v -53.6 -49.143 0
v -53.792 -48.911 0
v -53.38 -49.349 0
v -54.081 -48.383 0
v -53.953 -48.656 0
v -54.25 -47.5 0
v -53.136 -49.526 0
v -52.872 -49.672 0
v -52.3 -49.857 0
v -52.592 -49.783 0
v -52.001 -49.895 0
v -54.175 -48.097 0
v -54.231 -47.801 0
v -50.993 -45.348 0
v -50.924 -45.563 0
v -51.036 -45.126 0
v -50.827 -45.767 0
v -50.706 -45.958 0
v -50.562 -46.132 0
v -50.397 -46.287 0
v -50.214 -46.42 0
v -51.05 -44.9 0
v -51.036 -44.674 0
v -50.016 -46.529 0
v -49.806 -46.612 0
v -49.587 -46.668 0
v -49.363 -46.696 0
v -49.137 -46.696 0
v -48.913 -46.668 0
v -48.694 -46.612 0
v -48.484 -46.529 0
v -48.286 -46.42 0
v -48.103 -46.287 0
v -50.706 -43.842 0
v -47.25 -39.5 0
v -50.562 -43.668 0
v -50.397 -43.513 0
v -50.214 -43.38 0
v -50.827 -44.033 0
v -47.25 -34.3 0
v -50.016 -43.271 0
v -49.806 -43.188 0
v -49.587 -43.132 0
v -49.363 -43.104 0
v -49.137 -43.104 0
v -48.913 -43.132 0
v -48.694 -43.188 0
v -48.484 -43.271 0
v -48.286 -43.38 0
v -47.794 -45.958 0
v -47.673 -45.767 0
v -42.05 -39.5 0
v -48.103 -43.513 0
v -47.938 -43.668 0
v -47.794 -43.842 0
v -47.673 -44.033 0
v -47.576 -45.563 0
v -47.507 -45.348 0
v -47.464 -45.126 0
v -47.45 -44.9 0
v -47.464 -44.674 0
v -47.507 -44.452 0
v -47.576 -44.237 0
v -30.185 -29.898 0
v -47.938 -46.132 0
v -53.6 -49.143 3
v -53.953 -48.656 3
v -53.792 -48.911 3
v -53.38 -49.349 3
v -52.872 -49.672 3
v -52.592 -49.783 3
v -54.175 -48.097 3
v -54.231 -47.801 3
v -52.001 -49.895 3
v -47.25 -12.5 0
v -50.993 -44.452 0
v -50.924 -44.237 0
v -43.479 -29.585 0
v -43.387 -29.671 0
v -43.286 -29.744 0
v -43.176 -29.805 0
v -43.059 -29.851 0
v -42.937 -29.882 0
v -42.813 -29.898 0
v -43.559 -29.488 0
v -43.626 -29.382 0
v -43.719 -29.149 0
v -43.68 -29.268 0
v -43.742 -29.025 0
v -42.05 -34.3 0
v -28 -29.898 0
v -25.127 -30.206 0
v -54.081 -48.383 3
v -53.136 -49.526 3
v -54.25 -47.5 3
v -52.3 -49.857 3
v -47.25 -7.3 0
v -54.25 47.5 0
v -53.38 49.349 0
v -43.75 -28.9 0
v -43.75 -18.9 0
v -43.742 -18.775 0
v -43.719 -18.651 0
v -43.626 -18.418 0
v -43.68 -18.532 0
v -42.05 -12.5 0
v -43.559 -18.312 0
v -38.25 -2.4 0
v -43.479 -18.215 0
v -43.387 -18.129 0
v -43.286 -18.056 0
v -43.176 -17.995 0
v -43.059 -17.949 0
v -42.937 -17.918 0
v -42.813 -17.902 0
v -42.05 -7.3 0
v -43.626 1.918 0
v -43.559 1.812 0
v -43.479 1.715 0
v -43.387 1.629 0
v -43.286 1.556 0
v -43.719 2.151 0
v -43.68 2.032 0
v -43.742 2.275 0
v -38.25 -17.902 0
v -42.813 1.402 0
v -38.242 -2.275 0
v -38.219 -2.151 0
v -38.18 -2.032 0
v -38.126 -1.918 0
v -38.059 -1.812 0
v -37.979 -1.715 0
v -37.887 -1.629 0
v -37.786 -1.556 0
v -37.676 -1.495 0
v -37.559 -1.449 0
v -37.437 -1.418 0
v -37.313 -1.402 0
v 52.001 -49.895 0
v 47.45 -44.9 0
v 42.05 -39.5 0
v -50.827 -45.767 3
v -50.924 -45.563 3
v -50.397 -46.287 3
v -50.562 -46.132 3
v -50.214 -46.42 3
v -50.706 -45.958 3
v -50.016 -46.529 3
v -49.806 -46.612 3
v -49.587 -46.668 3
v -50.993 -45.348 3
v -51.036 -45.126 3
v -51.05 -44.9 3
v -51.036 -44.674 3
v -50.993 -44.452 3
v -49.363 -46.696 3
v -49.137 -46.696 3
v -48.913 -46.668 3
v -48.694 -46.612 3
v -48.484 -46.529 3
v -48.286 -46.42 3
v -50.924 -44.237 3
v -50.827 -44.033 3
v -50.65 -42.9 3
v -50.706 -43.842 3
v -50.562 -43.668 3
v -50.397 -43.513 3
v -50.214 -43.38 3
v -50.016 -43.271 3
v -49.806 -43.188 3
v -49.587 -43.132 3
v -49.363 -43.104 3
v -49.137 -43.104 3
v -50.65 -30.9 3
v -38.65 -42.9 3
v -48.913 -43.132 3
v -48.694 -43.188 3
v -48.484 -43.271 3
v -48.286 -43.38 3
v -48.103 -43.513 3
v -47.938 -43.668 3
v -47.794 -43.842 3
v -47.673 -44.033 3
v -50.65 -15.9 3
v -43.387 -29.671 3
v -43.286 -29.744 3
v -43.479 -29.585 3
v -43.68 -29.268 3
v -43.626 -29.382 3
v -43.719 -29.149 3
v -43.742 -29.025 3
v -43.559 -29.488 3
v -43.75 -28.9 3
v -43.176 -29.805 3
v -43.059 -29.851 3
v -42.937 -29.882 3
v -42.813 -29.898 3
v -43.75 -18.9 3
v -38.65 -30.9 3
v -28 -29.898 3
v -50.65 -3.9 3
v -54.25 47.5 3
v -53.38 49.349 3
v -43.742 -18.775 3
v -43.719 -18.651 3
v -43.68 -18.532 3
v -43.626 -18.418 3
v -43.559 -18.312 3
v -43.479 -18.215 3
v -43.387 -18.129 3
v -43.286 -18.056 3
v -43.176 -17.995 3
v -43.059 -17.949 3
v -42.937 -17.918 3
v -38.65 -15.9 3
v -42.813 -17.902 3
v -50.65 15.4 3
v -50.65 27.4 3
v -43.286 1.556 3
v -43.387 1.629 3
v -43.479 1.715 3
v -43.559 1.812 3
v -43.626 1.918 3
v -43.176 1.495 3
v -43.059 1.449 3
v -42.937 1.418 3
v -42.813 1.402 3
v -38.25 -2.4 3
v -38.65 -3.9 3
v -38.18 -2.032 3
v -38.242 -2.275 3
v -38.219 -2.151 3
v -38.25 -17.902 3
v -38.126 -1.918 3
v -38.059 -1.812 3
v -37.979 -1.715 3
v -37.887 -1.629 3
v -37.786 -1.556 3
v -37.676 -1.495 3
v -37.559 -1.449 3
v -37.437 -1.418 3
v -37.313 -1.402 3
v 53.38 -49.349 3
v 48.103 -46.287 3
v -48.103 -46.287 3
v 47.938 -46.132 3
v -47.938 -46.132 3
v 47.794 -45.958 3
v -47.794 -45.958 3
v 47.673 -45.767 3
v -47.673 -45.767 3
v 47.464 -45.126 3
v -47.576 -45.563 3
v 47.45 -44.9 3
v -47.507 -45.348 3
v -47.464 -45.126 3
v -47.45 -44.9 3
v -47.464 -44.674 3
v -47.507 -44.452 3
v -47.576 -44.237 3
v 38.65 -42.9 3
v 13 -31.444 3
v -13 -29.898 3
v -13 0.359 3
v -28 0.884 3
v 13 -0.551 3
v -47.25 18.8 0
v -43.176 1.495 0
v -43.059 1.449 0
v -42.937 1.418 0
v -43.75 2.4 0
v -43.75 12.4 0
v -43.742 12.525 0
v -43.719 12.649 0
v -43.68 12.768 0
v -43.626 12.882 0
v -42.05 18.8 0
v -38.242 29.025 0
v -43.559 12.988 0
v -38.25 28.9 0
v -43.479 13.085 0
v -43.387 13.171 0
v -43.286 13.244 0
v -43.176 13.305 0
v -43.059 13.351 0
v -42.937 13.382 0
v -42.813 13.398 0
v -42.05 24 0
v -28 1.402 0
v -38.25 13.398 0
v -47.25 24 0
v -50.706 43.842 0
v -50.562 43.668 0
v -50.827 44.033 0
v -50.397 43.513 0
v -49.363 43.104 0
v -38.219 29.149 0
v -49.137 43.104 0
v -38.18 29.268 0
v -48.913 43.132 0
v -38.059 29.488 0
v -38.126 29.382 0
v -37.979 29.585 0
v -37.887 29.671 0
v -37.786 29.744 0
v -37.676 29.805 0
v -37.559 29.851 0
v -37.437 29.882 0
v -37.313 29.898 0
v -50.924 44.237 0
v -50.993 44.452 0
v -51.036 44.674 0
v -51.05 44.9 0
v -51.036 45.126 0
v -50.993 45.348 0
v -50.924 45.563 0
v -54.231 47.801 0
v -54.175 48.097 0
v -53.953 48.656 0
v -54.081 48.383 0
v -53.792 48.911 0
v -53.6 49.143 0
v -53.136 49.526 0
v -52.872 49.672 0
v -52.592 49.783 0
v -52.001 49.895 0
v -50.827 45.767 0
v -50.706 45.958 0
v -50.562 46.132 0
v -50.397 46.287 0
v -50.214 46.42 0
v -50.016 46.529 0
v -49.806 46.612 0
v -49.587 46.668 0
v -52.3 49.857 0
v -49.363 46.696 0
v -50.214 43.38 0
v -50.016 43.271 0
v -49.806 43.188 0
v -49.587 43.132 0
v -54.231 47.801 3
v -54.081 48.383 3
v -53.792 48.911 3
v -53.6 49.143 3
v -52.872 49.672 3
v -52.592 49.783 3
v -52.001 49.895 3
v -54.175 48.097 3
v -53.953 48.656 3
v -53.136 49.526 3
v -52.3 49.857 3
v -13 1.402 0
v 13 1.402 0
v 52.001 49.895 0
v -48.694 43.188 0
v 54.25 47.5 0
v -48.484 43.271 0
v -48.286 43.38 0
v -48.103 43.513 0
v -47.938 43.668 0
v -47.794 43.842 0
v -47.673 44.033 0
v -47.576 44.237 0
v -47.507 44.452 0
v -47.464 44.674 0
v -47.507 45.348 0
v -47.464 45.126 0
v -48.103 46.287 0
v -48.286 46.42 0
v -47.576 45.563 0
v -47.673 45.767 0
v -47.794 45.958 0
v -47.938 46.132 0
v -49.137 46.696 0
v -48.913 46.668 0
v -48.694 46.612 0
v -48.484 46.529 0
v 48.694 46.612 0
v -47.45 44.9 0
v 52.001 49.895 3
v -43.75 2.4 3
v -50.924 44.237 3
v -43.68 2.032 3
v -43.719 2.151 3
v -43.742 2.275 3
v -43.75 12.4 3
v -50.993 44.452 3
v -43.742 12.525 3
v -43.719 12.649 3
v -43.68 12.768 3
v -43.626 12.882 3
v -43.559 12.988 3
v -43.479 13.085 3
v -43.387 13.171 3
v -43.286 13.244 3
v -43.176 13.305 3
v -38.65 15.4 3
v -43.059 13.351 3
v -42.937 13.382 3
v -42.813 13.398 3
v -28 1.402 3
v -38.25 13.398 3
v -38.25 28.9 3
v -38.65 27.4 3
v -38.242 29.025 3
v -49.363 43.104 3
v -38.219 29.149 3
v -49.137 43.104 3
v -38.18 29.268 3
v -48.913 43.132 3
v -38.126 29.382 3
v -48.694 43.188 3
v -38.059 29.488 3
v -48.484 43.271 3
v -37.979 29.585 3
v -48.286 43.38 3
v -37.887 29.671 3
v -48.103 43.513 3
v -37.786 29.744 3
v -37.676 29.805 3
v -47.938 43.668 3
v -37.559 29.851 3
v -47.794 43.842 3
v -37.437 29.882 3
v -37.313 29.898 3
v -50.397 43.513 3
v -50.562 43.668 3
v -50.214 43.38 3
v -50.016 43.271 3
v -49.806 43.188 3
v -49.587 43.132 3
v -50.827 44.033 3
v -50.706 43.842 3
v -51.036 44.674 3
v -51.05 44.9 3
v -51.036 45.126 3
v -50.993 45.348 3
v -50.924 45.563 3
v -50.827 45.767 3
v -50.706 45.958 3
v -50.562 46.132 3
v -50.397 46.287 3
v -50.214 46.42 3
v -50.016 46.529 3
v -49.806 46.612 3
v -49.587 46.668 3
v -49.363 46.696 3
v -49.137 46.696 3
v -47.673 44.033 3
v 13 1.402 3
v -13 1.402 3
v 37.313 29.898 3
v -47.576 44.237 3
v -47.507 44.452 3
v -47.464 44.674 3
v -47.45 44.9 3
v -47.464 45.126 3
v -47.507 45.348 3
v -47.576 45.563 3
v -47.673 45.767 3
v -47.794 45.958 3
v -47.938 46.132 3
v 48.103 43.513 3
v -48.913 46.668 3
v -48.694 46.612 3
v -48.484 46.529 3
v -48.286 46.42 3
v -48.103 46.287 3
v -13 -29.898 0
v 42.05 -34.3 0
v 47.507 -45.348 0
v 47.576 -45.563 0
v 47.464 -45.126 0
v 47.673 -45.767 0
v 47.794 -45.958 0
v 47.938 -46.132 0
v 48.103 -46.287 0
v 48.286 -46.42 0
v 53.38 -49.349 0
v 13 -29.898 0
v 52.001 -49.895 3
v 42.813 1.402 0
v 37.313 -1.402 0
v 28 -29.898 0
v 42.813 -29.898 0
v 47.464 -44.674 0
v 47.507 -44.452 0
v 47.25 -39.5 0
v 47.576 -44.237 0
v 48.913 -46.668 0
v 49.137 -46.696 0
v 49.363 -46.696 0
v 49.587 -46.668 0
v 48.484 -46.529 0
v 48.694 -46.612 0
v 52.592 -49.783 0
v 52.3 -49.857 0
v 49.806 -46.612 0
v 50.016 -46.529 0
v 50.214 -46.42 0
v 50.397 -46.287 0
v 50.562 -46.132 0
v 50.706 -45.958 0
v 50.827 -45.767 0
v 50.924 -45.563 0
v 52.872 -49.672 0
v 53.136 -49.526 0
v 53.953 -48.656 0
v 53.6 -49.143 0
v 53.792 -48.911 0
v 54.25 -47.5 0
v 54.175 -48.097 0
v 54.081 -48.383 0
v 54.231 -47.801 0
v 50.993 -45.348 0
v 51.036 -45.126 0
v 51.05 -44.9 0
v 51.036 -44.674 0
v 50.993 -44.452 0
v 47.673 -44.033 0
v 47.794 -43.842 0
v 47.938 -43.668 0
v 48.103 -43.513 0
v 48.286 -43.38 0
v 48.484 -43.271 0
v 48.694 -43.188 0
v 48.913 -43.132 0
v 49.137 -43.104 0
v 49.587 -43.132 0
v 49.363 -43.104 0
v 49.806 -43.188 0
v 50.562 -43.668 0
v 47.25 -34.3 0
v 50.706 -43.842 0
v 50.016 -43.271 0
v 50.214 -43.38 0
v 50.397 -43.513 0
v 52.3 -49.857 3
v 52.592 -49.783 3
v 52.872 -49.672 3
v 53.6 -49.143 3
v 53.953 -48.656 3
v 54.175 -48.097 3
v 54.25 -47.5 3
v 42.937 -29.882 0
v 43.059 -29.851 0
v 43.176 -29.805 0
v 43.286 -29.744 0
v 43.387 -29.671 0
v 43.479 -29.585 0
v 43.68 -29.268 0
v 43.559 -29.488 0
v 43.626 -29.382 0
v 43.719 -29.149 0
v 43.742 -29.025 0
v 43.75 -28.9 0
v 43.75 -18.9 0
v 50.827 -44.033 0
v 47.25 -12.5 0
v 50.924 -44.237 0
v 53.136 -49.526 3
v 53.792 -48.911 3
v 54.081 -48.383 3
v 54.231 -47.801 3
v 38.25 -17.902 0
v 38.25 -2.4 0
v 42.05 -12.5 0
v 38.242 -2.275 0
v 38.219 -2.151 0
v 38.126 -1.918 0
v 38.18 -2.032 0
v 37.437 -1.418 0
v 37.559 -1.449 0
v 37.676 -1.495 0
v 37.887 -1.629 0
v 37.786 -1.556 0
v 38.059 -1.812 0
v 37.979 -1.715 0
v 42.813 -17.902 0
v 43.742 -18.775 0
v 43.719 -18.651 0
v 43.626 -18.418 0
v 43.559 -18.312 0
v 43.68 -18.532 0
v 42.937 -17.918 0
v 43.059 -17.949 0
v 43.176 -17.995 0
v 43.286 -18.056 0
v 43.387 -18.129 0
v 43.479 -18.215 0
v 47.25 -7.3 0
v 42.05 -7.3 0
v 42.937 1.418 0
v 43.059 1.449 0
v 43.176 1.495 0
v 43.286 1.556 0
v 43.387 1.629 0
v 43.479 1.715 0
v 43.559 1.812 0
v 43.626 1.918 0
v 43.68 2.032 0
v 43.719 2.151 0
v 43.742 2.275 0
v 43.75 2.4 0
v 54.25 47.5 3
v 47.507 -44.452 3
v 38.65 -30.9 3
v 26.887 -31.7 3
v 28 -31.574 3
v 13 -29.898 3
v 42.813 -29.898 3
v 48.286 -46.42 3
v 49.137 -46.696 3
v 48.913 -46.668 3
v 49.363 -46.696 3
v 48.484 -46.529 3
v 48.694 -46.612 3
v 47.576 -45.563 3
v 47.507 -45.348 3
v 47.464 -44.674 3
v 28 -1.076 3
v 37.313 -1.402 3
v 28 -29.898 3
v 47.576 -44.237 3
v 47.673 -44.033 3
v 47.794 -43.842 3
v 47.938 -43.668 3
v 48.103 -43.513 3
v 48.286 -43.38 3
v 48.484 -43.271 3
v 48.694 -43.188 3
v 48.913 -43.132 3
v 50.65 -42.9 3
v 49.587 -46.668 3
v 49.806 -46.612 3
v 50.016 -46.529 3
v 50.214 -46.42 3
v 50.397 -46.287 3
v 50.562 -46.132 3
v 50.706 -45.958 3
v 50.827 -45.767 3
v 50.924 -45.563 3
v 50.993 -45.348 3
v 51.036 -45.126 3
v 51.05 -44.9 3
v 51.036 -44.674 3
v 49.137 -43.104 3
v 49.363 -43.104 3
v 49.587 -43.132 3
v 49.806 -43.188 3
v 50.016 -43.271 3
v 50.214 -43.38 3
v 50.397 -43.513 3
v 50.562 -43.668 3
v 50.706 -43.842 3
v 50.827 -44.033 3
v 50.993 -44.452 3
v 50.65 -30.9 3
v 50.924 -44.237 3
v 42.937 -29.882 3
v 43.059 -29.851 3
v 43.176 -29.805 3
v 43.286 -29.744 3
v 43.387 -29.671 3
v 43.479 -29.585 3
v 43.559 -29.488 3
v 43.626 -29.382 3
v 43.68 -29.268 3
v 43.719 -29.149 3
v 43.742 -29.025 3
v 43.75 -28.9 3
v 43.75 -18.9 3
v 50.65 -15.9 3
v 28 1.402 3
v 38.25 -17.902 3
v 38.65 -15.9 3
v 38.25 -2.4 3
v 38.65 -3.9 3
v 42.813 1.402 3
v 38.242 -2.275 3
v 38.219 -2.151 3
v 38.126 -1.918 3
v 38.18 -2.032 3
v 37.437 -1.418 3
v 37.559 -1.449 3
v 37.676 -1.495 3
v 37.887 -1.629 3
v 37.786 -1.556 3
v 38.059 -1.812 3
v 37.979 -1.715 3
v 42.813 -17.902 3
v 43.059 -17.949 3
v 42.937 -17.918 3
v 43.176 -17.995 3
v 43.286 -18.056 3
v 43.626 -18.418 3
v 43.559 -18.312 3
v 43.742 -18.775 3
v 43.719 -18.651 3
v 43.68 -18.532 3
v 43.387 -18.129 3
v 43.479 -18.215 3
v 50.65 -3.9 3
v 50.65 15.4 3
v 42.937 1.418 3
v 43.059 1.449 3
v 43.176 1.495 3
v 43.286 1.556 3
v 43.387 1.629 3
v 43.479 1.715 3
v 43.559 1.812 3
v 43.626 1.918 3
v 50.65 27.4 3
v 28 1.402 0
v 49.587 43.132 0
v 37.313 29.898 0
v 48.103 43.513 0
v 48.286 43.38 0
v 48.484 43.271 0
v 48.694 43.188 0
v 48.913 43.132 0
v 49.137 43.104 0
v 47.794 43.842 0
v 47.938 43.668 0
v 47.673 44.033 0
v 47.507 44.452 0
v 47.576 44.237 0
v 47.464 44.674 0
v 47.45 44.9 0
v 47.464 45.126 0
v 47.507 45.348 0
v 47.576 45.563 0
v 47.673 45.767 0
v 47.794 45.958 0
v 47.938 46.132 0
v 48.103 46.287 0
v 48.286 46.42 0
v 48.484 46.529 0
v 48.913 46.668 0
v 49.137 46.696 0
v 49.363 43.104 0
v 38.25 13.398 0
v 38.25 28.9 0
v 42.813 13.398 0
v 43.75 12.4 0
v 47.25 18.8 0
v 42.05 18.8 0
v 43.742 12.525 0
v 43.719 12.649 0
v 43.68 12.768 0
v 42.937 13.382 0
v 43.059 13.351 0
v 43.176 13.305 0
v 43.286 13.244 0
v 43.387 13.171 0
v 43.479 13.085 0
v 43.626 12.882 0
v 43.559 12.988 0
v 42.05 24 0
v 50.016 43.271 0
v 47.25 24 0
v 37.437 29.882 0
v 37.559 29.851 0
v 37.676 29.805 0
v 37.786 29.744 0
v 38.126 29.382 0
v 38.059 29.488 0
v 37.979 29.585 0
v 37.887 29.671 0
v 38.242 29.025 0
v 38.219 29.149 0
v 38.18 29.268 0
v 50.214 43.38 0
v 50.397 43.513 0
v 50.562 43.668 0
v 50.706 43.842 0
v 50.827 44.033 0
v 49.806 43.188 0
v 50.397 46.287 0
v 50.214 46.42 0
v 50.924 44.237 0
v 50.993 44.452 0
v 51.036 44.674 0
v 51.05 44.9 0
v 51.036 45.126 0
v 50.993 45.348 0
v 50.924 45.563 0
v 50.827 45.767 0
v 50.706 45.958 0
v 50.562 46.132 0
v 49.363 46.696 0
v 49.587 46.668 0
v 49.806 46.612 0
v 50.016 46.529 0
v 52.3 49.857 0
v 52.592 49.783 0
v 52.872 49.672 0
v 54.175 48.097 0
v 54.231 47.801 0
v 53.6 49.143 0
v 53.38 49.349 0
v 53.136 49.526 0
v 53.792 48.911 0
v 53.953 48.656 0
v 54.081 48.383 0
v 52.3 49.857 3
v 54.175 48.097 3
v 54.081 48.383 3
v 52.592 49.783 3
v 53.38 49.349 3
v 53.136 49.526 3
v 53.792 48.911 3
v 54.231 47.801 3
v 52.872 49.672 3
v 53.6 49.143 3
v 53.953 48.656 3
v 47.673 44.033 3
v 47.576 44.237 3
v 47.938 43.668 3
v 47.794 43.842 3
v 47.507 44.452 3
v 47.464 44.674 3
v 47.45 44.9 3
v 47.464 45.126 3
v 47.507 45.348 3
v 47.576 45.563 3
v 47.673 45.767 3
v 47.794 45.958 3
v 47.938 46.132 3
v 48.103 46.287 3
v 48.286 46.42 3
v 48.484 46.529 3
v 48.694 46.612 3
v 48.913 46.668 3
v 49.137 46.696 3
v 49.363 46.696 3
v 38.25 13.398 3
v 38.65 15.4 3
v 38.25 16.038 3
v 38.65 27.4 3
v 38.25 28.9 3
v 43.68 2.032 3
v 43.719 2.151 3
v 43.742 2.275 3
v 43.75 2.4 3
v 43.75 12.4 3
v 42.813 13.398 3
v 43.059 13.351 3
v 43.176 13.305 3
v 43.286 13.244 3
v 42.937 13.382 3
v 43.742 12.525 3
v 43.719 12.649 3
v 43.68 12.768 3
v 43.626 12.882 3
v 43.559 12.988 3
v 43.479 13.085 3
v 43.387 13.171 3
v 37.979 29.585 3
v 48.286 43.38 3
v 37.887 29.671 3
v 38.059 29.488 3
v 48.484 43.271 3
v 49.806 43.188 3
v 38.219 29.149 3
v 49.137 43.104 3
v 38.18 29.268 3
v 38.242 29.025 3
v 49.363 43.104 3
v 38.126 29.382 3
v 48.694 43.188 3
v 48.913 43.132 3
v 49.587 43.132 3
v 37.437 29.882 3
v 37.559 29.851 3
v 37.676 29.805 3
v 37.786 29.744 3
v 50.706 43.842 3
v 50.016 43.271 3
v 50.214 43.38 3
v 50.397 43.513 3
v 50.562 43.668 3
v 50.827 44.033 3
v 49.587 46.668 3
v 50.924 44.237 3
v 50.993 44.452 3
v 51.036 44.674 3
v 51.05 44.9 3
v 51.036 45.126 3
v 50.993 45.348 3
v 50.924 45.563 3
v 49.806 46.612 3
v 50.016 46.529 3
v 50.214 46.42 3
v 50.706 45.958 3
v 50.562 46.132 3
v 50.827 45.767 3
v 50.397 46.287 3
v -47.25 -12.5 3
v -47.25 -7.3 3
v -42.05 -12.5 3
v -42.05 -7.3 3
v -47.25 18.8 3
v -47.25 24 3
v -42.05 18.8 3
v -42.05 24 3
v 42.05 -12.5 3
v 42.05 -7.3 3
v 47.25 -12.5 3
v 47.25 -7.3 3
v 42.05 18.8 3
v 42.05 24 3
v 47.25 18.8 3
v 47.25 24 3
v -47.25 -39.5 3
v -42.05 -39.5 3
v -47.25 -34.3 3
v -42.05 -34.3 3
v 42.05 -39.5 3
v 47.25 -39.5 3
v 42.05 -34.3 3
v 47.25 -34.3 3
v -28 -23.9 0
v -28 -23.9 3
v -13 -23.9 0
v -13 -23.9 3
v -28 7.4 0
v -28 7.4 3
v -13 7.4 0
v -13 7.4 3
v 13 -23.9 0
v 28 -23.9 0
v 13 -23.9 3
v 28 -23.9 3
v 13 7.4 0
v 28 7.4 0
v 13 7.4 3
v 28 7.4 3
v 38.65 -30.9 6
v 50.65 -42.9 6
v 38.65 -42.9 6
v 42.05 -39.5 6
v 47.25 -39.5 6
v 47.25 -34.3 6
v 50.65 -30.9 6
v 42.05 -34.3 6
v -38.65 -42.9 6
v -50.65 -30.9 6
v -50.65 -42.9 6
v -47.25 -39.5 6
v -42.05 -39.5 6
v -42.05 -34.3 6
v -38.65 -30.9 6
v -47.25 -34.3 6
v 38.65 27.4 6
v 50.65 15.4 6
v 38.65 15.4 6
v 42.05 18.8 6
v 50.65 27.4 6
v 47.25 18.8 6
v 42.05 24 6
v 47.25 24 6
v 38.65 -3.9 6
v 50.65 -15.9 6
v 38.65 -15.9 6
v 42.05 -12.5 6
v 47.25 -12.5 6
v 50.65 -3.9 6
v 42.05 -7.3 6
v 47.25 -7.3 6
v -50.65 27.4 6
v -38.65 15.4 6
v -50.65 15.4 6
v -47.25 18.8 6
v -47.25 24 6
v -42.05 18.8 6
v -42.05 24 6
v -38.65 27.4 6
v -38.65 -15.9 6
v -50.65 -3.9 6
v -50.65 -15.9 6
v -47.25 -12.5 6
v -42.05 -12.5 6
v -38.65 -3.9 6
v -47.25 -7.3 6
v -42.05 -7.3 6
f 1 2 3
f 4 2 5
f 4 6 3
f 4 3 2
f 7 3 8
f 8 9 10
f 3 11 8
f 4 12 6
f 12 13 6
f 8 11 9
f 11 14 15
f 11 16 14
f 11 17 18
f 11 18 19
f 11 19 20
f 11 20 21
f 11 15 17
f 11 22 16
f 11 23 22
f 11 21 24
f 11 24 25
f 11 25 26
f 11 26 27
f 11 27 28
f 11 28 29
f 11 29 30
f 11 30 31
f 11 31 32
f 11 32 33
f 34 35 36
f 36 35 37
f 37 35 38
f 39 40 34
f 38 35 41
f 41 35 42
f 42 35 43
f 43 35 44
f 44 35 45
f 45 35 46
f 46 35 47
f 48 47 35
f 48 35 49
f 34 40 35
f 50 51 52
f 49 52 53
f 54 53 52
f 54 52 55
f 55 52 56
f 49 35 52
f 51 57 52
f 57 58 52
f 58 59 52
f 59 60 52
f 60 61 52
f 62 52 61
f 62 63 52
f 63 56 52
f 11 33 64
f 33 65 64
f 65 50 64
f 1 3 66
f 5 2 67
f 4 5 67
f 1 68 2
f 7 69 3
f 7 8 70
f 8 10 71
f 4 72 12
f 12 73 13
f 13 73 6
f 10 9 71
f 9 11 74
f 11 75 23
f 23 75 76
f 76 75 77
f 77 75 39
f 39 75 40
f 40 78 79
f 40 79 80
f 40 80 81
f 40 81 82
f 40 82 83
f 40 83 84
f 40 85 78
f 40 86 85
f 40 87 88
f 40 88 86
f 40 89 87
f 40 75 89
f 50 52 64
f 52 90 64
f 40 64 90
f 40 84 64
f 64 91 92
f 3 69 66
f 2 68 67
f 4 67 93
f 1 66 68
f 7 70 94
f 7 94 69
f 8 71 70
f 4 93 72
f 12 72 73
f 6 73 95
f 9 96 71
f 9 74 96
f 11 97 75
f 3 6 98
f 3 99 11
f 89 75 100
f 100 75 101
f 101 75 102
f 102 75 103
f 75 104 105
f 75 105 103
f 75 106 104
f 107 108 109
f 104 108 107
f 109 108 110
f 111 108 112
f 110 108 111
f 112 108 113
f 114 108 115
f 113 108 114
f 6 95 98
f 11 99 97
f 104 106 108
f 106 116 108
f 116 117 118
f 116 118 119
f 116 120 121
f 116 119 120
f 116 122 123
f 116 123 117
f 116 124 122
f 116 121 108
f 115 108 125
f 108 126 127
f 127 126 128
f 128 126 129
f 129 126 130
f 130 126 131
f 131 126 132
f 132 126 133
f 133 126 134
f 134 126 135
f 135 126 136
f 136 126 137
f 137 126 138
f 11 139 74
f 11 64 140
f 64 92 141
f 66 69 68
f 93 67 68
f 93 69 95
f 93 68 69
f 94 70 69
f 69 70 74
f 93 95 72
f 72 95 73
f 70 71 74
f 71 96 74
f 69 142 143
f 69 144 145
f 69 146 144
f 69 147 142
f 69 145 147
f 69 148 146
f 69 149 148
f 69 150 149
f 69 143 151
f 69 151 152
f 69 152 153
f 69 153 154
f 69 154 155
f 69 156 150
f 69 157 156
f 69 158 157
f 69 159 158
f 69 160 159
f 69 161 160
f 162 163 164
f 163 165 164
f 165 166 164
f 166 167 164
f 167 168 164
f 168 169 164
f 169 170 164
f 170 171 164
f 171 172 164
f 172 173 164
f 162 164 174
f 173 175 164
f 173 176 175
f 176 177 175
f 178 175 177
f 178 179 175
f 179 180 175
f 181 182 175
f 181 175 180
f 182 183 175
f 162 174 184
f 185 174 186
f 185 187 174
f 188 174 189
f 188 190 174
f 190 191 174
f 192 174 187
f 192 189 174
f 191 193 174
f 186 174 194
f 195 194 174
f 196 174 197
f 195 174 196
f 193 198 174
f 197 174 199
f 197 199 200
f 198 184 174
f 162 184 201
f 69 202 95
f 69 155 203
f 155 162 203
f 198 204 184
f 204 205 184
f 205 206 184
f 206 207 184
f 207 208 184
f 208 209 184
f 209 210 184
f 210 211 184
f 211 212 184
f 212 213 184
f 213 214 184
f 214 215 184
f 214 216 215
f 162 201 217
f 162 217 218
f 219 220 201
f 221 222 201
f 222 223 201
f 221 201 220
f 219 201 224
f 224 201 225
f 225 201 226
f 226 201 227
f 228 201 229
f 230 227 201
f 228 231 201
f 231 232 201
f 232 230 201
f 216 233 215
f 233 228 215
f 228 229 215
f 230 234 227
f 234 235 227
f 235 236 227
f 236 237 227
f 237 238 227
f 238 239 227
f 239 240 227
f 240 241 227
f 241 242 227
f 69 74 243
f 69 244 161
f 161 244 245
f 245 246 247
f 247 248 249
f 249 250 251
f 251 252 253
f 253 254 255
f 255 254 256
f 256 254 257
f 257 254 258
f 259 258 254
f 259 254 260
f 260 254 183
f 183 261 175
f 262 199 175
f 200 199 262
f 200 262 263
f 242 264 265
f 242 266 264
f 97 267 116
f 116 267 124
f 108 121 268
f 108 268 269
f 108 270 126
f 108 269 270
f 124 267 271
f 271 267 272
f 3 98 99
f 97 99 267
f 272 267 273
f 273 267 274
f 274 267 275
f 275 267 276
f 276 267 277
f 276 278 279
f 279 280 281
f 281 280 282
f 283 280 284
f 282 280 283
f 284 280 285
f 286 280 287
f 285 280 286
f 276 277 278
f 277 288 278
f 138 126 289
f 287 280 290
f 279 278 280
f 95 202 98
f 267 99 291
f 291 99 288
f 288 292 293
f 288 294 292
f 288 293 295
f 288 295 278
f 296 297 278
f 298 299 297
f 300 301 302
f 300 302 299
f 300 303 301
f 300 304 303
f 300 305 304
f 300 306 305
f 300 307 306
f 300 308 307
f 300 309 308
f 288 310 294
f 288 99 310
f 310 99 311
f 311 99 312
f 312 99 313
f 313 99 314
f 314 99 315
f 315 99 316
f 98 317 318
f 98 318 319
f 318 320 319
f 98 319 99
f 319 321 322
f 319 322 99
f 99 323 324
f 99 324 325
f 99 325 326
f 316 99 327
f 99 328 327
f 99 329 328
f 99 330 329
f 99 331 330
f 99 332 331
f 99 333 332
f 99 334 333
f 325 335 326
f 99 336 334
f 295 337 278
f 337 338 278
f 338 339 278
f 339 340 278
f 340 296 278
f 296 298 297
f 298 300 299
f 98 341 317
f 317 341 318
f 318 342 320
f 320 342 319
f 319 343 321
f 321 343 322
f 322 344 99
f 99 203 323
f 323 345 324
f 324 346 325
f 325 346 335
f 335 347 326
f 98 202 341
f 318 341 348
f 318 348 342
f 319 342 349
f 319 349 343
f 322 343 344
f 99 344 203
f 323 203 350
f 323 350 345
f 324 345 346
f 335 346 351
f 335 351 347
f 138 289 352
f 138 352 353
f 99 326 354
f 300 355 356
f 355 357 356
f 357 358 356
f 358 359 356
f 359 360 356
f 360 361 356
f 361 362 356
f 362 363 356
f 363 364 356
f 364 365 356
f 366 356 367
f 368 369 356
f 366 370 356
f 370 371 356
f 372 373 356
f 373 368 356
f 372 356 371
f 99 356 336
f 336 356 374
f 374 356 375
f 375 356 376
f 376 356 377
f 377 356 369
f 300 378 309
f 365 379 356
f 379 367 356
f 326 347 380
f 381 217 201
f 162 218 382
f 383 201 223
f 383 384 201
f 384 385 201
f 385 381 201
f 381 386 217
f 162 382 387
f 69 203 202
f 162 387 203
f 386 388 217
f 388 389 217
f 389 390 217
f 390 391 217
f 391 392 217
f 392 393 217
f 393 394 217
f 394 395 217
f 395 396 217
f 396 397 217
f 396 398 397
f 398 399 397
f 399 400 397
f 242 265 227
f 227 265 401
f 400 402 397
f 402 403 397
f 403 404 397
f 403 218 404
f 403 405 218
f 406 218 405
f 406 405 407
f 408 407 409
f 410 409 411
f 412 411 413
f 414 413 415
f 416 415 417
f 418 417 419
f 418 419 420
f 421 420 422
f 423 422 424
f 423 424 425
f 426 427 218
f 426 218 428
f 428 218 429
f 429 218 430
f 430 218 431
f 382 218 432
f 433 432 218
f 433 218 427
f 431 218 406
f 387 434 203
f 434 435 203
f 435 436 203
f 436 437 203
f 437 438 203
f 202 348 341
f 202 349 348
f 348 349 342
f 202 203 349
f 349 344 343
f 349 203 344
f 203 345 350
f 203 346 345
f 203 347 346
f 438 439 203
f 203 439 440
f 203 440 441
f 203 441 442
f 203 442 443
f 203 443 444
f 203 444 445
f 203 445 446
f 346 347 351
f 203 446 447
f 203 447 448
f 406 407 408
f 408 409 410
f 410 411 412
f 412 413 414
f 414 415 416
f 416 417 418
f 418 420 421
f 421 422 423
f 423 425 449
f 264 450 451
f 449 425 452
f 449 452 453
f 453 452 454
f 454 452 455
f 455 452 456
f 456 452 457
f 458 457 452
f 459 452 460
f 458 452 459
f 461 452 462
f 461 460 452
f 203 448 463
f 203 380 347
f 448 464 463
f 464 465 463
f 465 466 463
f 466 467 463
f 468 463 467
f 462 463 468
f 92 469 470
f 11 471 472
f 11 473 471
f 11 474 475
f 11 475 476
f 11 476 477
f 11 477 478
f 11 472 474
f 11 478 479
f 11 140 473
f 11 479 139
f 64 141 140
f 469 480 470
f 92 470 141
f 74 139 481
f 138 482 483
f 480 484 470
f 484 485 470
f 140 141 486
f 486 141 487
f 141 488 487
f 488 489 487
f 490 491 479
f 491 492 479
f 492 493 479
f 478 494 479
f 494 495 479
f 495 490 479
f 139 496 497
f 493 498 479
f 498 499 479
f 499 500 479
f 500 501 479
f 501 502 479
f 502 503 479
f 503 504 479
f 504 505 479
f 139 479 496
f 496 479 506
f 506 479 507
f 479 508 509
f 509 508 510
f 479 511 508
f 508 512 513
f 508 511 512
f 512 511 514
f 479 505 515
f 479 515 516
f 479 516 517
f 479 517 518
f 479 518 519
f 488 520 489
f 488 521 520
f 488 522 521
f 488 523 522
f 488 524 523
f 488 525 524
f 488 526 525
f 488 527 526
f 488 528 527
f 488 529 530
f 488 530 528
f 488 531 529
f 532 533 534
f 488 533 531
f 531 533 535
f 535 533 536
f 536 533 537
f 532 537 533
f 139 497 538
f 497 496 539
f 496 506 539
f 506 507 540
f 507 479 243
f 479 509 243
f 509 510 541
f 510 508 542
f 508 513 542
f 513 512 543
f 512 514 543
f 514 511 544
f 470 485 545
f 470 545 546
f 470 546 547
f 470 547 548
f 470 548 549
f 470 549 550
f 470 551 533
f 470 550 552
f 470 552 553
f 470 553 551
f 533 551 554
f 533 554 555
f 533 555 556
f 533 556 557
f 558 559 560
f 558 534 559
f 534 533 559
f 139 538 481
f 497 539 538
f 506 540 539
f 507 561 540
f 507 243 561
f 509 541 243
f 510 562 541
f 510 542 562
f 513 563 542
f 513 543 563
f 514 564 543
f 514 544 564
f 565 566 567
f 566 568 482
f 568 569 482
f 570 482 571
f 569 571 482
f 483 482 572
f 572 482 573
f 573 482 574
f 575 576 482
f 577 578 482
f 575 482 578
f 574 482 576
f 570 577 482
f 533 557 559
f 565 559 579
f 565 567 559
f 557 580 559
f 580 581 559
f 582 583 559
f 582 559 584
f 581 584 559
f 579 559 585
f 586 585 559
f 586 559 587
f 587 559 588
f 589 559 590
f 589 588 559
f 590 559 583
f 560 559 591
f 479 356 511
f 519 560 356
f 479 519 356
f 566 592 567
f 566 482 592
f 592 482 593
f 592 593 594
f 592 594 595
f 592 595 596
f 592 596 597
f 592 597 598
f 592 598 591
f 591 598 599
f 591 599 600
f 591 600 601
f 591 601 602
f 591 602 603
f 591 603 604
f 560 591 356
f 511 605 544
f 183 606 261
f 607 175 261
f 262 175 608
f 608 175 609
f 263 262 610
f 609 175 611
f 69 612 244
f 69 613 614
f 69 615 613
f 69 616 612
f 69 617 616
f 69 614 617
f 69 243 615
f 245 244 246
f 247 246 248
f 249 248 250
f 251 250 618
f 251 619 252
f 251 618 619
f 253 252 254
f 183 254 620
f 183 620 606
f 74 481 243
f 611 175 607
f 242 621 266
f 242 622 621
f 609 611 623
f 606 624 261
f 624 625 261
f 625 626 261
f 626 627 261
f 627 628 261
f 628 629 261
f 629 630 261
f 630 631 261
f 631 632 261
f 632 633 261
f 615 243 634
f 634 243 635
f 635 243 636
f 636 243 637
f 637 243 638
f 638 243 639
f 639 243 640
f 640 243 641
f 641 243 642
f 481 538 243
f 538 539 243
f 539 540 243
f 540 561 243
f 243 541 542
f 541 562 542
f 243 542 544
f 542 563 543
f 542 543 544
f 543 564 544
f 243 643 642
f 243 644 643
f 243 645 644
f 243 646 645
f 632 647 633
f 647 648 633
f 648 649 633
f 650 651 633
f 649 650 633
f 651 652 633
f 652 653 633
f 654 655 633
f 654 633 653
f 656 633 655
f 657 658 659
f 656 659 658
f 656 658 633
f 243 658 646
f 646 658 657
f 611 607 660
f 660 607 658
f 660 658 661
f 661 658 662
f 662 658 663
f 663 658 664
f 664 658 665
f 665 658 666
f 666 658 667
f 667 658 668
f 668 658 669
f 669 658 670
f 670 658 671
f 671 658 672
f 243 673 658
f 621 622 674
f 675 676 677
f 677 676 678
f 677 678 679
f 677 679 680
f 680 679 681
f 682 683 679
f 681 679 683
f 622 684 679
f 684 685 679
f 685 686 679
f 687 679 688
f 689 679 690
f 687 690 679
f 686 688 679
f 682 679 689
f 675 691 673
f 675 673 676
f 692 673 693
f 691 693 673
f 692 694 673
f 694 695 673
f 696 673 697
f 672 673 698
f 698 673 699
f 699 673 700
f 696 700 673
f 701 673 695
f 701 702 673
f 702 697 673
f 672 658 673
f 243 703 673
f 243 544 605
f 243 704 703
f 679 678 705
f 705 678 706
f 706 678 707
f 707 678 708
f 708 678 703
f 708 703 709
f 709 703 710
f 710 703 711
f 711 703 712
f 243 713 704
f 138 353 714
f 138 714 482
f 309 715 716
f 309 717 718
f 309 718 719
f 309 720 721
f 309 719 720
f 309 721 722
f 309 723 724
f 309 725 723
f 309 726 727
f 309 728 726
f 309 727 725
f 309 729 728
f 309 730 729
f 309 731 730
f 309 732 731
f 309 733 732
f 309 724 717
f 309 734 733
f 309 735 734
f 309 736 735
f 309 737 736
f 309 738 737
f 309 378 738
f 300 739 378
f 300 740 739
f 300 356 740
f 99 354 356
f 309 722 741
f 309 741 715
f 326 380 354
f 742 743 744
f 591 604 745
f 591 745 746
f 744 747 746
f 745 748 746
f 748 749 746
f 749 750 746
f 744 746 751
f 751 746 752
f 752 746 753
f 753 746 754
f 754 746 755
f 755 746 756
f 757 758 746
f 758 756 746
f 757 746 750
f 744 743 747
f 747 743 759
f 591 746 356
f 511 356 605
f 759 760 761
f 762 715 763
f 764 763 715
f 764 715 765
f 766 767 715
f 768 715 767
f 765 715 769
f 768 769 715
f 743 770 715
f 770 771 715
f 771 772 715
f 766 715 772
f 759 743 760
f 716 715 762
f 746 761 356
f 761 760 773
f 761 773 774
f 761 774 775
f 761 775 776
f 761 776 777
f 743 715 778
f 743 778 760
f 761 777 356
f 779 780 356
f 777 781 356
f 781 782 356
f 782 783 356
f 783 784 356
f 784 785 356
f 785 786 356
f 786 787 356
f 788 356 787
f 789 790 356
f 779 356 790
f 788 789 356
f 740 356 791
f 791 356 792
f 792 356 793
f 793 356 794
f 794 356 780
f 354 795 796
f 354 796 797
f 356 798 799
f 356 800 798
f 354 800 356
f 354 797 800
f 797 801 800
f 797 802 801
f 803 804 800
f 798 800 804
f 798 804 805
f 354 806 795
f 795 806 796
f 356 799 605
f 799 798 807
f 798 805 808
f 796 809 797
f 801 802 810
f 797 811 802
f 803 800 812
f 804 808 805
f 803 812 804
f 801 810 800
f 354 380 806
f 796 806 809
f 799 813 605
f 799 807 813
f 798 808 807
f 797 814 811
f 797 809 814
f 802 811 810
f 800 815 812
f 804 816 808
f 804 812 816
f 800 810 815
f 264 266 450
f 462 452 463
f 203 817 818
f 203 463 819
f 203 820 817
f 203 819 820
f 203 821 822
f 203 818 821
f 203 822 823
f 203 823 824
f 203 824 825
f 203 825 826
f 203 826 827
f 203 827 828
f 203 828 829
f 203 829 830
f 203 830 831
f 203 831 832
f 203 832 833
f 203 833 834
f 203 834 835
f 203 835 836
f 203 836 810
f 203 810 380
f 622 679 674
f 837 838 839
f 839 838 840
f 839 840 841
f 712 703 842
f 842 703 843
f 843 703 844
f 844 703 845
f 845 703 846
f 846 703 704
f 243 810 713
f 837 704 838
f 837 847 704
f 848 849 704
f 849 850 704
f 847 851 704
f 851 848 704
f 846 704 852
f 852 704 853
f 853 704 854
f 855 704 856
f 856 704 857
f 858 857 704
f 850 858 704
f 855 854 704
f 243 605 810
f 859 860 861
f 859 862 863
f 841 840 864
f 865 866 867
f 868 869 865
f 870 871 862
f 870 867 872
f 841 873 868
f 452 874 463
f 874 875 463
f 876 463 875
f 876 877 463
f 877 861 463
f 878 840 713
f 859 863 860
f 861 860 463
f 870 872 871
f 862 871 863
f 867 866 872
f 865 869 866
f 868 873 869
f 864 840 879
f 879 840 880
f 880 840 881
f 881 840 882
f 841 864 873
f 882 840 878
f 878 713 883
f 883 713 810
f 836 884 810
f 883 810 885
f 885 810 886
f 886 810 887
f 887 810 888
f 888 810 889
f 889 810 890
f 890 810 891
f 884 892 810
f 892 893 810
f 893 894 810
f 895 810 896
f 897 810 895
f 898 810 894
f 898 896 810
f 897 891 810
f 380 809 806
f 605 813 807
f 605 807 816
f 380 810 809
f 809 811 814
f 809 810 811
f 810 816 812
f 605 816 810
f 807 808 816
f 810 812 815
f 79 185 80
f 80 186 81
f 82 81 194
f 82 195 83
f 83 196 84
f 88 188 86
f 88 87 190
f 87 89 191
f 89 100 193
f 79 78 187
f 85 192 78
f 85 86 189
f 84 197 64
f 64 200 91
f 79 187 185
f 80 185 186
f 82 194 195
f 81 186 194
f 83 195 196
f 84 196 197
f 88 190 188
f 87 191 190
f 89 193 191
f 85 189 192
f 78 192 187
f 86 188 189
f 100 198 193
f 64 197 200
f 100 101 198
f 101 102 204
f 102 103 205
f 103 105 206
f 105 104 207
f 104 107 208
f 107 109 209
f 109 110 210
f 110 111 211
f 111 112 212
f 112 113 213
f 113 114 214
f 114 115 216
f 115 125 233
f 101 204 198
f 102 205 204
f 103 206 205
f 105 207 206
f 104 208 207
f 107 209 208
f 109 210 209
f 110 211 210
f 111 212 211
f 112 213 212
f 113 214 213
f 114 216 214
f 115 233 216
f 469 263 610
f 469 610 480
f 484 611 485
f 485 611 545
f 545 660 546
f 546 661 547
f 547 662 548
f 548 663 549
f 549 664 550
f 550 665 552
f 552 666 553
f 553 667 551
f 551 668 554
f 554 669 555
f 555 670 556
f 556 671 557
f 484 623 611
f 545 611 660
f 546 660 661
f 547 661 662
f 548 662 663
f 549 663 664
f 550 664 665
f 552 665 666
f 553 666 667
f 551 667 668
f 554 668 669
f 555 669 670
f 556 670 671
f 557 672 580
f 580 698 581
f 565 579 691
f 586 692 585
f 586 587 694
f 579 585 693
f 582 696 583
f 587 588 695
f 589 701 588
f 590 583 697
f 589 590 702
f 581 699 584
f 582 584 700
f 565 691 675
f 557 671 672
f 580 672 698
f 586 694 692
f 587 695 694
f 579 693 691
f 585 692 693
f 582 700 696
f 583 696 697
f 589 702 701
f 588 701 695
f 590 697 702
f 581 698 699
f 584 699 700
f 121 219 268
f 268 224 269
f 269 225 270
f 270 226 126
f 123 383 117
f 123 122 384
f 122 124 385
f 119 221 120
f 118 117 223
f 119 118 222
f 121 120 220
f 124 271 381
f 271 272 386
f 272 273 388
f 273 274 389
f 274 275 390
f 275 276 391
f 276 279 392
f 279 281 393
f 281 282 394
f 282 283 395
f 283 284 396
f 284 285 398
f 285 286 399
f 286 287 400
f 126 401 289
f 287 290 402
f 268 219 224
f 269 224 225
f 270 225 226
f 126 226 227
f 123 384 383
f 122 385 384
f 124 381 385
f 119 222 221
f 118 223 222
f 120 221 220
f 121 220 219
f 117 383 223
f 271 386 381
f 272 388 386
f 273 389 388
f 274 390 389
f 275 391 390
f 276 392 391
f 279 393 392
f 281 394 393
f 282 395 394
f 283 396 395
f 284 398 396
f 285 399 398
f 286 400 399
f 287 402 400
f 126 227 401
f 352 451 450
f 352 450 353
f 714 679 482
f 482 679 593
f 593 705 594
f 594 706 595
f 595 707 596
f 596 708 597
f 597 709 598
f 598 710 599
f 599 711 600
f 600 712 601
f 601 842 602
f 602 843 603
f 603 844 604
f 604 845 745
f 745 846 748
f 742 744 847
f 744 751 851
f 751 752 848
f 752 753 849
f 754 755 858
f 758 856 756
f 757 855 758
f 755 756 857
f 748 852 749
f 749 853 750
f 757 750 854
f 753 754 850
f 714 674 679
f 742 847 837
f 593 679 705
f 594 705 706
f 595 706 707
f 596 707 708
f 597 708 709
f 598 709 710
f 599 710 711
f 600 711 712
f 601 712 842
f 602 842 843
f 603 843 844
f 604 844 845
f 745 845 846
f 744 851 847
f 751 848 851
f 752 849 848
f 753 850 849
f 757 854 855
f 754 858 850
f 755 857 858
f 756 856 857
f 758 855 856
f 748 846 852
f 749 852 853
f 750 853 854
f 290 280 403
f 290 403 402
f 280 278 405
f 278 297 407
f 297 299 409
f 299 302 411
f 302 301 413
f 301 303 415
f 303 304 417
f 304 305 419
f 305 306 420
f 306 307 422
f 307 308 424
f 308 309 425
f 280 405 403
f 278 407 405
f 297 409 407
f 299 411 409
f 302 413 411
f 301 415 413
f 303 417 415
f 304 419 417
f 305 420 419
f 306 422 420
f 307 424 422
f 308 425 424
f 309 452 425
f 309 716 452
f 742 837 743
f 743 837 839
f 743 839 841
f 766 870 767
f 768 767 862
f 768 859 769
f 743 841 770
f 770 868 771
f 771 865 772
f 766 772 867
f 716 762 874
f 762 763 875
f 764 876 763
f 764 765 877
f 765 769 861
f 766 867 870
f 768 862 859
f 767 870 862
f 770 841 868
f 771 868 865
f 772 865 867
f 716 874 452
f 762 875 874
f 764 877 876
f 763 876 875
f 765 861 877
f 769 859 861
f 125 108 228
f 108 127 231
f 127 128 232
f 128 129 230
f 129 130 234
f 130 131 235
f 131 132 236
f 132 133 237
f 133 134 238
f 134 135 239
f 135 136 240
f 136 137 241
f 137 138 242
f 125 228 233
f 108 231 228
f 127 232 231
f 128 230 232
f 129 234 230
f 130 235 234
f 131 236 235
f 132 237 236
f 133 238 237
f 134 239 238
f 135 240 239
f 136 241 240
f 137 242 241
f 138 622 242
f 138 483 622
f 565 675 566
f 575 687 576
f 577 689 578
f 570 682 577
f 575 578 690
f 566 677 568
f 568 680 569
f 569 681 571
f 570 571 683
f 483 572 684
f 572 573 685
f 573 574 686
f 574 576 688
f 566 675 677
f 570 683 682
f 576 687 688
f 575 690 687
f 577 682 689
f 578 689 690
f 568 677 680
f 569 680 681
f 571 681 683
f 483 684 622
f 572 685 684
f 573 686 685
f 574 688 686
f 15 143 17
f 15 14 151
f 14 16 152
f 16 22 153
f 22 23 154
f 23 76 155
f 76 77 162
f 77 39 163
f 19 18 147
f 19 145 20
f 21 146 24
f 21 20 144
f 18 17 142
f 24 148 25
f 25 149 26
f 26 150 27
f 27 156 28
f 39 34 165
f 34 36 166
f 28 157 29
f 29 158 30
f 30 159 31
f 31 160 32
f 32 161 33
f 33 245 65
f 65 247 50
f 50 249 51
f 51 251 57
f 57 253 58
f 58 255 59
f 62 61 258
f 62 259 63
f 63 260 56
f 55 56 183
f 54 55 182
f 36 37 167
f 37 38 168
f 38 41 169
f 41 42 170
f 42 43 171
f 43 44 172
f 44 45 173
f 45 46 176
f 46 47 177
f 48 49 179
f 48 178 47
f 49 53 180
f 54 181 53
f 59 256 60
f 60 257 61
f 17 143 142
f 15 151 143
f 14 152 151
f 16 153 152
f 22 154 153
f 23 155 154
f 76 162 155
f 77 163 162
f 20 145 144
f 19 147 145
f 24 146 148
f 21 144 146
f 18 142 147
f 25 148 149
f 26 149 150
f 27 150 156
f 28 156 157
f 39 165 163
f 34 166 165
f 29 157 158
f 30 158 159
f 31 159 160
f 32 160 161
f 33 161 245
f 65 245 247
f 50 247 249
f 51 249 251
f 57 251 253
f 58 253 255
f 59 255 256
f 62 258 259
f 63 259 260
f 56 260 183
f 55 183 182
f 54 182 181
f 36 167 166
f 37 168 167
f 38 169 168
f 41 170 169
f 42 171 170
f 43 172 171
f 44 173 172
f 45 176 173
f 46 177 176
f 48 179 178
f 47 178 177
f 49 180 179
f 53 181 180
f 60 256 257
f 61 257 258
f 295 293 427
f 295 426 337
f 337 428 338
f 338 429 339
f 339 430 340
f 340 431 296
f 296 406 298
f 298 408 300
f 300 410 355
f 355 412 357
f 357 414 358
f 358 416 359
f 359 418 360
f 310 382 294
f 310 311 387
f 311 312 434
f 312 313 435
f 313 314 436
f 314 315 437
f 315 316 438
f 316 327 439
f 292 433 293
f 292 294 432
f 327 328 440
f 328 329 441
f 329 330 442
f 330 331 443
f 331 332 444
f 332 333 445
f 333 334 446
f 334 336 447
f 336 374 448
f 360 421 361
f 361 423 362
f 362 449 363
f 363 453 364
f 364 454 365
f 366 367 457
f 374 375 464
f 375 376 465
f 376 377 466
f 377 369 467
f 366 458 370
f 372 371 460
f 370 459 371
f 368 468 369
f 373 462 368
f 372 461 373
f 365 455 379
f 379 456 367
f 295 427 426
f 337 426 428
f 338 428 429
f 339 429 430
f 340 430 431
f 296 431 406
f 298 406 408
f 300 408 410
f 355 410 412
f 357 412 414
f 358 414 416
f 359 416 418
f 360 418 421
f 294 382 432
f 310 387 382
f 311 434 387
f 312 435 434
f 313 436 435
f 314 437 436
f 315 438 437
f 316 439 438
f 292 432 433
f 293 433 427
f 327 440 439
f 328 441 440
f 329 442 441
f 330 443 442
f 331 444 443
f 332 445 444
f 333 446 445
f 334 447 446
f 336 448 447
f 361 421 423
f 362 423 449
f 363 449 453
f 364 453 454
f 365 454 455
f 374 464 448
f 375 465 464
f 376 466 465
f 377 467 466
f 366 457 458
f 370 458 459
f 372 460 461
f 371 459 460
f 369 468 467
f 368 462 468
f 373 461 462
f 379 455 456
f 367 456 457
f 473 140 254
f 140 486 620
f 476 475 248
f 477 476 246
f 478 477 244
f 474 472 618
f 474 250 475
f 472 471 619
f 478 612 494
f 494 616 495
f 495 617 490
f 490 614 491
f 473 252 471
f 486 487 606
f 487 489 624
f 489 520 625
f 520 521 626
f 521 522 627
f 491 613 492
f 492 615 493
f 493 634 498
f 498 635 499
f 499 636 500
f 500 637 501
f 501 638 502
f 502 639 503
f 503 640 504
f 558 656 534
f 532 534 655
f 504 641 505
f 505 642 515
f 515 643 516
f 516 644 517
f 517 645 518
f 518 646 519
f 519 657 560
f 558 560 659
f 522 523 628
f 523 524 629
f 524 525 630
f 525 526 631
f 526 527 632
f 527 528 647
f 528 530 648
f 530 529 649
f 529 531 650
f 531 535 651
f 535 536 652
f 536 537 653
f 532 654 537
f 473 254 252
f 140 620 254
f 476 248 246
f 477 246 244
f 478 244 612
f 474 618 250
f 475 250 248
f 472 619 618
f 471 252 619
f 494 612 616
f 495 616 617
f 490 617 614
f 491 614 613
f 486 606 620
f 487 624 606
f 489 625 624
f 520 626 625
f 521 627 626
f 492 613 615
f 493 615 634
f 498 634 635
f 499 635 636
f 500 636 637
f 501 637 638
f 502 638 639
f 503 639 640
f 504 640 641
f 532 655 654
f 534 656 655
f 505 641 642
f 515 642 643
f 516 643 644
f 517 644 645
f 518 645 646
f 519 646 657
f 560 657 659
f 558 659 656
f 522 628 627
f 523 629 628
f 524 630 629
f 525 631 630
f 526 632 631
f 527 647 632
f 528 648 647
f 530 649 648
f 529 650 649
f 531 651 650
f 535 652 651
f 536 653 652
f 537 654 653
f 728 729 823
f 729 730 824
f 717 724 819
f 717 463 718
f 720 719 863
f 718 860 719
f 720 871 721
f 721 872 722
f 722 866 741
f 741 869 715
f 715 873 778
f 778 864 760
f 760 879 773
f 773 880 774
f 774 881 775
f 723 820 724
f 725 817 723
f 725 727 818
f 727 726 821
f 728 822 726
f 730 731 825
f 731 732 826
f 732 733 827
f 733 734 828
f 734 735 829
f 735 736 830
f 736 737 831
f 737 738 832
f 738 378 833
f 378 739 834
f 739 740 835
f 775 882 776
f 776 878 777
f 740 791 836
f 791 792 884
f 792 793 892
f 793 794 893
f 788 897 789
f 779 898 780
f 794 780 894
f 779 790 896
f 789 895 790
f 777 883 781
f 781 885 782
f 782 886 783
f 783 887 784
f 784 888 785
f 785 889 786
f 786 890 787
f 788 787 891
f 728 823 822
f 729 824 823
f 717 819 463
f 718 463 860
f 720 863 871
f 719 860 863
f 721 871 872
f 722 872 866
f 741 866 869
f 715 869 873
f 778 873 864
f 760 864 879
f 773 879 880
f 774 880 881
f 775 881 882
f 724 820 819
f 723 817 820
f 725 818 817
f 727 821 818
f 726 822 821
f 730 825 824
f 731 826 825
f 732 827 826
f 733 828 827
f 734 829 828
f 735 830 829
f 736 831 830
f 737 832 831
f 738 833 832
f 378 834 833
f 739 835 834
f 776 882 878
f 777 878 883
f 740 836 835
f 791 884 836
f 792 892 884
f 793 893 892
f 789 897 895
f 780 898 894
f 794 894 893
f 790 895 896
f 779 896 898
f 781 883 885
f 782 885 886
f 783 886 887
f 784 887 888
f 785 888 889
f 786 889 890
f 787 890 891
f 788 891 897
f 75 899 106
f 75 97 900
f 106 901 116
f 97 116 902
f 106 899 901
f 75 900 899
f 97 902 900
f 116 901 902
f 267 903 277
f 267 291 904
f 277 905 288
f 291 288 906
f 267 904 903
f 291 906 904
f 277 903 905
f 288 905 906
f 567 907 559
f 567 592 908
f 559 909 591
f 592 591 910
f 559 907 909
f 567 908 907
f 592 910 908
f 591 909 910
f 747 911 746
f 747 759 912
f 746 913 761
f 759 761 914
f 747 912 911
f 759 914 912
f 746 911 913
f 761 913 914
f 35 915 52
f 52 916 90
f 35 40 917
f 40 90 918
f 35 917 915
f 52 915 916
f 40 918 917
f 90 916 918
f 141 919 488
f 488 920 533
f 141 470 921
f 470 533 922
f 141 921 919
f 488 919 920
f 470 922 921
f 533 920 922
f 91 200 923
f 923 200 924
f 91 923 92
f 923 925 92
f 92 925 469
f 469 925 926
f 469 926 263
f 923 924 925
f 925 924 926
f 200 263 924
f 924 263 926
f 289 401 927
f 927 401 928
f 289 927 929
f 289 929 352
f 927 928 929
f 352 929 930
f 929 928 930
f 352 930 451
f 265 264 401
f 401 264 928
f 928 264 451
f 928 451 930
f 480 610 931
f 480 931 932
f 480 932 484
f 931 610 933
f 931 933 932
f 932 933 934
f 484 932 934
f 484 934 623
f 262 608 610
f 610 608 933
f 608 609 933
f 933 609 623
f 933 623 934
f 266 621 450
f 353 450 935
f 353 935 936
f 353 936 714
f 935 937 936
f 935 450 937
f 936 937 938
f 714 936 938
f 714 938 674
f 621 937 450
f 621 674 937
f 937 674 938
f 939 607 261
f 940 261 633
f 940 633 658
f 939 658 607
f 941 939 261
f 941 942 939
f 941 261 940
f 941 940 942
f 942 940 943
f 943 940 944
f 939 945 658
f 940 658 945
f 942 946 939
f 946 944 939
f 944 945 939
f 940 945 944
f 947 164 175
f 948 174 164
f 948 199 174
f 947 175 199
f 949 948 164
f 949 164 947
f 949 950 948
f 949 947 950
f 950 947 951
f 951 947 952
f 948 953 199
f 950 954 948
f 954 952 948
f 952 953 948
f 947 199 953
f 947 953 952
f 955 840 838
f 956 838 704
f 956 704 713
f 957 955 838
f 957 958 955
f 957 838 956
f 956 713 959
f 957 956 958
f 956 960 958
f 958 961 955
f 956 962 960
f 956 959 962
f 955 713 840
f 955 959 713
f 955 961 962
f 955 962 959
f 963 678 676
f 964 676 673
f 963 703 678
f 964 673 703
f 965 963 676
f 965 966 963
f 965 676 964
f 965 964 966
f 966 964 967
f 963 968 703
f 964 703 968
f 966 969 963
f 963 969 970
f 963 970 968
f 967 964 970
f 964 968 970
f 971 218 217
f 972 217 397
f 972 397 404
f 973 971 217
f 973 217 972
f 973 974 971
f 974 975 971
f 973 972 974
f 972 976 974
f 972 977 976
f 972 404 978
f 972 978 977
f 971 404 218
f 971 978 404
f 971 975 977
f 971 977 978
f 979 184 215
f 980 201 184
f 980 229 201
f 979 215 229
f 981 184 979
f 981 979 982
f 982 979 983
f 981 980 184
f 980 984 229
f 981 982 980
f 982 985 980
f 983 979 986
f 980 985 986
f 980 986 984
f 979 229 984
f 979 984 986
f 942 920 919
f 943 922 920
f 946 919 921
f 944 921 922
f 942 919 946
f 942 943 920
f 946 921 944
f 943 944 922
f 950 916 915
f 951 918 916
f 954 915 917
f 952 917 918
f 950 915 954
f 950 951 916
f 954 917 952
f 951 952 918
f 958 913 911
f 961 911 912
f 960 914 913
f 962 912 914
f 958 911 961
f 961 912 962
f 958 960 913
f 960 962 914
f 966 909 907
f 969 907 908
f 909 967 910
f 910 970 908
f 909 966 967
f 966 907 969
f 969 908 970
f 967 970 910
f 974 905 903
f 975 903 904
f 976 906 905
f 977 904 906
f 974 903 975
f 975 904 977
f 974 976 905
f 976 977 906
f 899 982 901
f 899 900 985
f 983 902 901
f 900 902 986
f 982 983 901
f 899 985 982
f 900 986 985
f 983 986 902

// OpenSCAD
$fn = 50;

difference() {
	union() {
		translate(v = [0, 0, 0]) {
			rotate(a = [0, 0, 0]) {
				difference() {
					union() {
						translate(v = [0, 0, 0]) {
							rotate(a = [0, 0, 0]) {
								difference() {
									union() {
										hull() {
											translate(v = [-51.8500000005, 47.5000000005, 0]) {
												cylinder(h = 3.0, r = 2.4);
											}
											translate(v = [51.8500000005, 47.5000000005, 0]) {
												cylinder(h = 3.0, r = 2.4);
											}
											translate(v = [-51.8500000005, -47.5000000005, 0]) {
												cylinder(h = 3.0, r = 2.4);
											}
											translate(v = [51.8500000005, -47.5000000005, 0]) {
												cylinder(h = 3.0, r = 2.4);
											}
										}
									}
									union() {
										translate(v = [0.0, -23.900000000000006, -0.1]) {
											hull() {
												translate(v = [-42.75, 5.0, 0]) {
													cylinder(h = 18.2, r = 1.0);
												}
												translate(v = [42.75, 5.0, 0]) {
													cylinder(h = 18.2, r = 1.0);
												}
												translate(v = [-42.75, -5.0, 0]) {
													cylinder(h = 18.2, r = 1.0);
												}
												translate(v = [42.75, -5.0, 0]) {
													cylinder(h = 18.2, r = 1.0);
												}
											}
										}
										translate(v = [0.0, -15.650000000000006, -0.1]) {
											hull() {
												translate(v = [-37.25, 13.25, 0]) {
													cylinder(h = 18.2, r = 1.0);
												}
												translate(v = [37.25, 13.25, 0]) {
													cylinder(h = 18.2, r = 1.0);
												}
												translate(v = [-37.25, -13.25, 0]) {
													cylinder(h = 18.2, r = 1.0);
												}
												translate(v = [37.25, -13.25, 0]) {
													cylinder(h = 18.2, r = 1.0);
												}
											}
										}
										translate(v = [0.0, 7.399999999999995, -0.1]) {
											hull() {
												translate(v = [-42.75, 5.0, 0]) {
													cylinder(h = 18.2, r = 1.0);
												}
												translate(v = [42.75, 5.0, 0]) {
													cylinder(h = 18.2, r = 1.0);
												}
												translate(v = [-42.75, -5.0, 0]) {
													cylinder(h = 18.2, r = 1.0);
												}
												translate(v = [42.75, -5.0, 0]) {
													cylinder(h = 18.2, r = 1.0);
												}
											}
										}
										translate(v = [0.0, 15.649999999999995, -0.1]) {
											hull() {
												translate(v = [-37.25, 13.25, 0]) {
													cylinder(h = 18.2, r = 1.0);
												}
												translate(v = [37.25, 13.25, 0]) {
													cylinder(h = 18.2, r = 1.0);
												}
												translate(v = [-37.25, -13.25, 0]) {
													cylinder(h = 18.2, r = 1.0);
												}
												translate(v = [37.25, -13.25, 0]) {
													cylinder(h = 18.2, r = 1.0);
												}
											}
										}
										translate(v = [-49.2500000005, -44.9000000005, -0.1]) {
											cylinder(h = 6.2, r = 1.8);
										}
										translate(v = [-49.2500000005, 44.9000000005, -0.1]) {
											cylinder(h = 6.2, r = 1.8);
										}
										translate(v = [49.2500000005, -44.9000000005, -0.1]) {
											cylinder(h = 6.2, r = 1.8);
										}
										translate(v = [49.2500000005, 44.9000000005, -0.1]) {
											cylinder(h = 6.2, r = 1.8);
										}
										translate(v = [-47.25, -12.500000000000005, -0.1]) {
											cube(size = [5.2, 5.2, 6.2]);
										}
										translate(v = [-47.25, 18.799999999999994, -0.1]) {
											cube(size = [5.2, 5.2, 6.2]);
										}
										translate(v = [42.05, -12.500000000000005, -0.1]) {
											cube(size = [5.2, 5.2, 6.2]);
										}
										translate(v = [42.05, 18.799999999999994, -0.1]) {
											cube(size = [5.2, 5.2, 6.2]);
										}
										translate(v = [-47.25, -39.5, -0.1]) {
											cube(size = [5.2, 5.2, 6.2]);
										}
										translate(v = [42.05, -39.5, -0.1]) {
											cube(size = [5.2, 5.2, 6.2]);
										}
									}
								}
							}
						}
						translate(v = [0, 0, 0]) {
							rotate(a = [0, 0, 0]) {
								difference() {
									union() {
										translate(v = [-28.0, -31.7, 0]) {
											cube(size = [15.0, 7.8, 3.0]);
										}
									}
									union();
								}
							}
						}
						translate(v = [0, 0, 0]) {
							rotate(a = [0, 0, 0]) {
								difference() {
									union() {
										translate(v = [-28.0, -1.3999999999999986, 0]) {
											cube(size = [15.0, 8.8, 3.0]);
										}
									}
									union();
								}
							}
						}
						translate(v = [0, 0, 0]) {
							rotate(a = [0, 0, 0]) {
								difference() {
									union() {
										translate(v = [13.0, -31.7, 0]) {
											cube(size = [15.0, 7.8, 3.0]);
										}
									}
									union();
								}
							}
						}
						translate(v = [0, 0, 0]) {
							rotate(a = [0, 0, 0]) {
								difference() {
									union() {
										translate(v = [13.0, -1.3999999999999986, 0]) {
											cube(size = [15.0, 8.8, 3.0]);
										}
									}
									union();
								}
							}
						}
					}
					union();
				}
			}
		}
		translate(v = [-44.65, -9.900000000000006, 3.0]) {
			rotate(a = [0, 0, 0]) {
				difference() {
					union() {
						translate(v = [-6.0, -6.0, 0]) {
							cube(size = [12.0, 12.0, 3.0]);
						}
					}
					union() {
						translate(v = [-2.6, -2.6, -0.1]) {
							cube(size = [5.2, 5.2, 3.2]);
						}
					}
				}
			}
		}
		translate(v = [-44.65, 21.399999999999995, 3.0]) {
			rotate(a = [0, 0, 0]) {
				difference() {
					union() {
						translate(v = [-6.0, -6.0, 0]) {
							cube(size = [12.0, 12.0, 3.0]);
						}
					}
					union() {
						translate(v = [-2.6, -2.6, -0.1]) {
							cube(size = [5.2, 5.2, 3.2]);
						}
					}
				}
			}
		}
		translate(v = [44.65, -9.900000000000006, 3.0]) {
			rotate(a = [0, 0, 0]) {
				difference() {
					union() {
						translate(v = [-6.0, -6.0, 0]) {
							cube(size = [12.0, 12.0, 3.0]);
						}
					}
					union() {
						translate(v = [-2.6, -2.6, -0.1]) {
							cube(size = [5.2, 5.2, 3.2]);
						}
					}
				}
			}
		}
		translate(v = [44.65, 21.399999999999995, 3.0]) {
			rotate(a = [0, 0, 0]) {
				difference() {
					union() {
						translate(v = [-6.0, -6.0, 0]) {
							cube(size = [12.0, 12.0, 3.0]);
						}
					}
					union() {
						translate(v = [-2.6, -2.6, -0.1]) {
							cube(size = [5.2, 5.2, 3.2]);
						}
					}
				}
			}
		}
		translate(v = [-44.65, -36.9, 3.0]) {
			rotate(a = [0, 0, 0]) {
				difference() {
					union() {
						translate(v = [-6.0, -6.0, 0]) {
							cube(size = [12.0, 12.0, 3.0]);
						}
					}
					union() {
						translate(v = [-2.6, -2.6, -0.1]) {
							cube(size = [5.2, 5.2, 3.2]);
						}
					}
				}
			}
		}
		translate(v = [44.65, -36.9, 3.0]) {
			rotate(a = [0, 0, 0]) {
				difference() {
					union() {
						translate(v = [-6.0, -6.0, 0]) {
							cube(size = [12.0, 12.0, 3.0]);
						}
					}
					union() {
						translate(v = [-2.6, -2.6, -0.1]) {
							cube(size = [5.2, 5.2, 3.2]);
						}
					}
				}
			}
		}
	}
	union();
}
